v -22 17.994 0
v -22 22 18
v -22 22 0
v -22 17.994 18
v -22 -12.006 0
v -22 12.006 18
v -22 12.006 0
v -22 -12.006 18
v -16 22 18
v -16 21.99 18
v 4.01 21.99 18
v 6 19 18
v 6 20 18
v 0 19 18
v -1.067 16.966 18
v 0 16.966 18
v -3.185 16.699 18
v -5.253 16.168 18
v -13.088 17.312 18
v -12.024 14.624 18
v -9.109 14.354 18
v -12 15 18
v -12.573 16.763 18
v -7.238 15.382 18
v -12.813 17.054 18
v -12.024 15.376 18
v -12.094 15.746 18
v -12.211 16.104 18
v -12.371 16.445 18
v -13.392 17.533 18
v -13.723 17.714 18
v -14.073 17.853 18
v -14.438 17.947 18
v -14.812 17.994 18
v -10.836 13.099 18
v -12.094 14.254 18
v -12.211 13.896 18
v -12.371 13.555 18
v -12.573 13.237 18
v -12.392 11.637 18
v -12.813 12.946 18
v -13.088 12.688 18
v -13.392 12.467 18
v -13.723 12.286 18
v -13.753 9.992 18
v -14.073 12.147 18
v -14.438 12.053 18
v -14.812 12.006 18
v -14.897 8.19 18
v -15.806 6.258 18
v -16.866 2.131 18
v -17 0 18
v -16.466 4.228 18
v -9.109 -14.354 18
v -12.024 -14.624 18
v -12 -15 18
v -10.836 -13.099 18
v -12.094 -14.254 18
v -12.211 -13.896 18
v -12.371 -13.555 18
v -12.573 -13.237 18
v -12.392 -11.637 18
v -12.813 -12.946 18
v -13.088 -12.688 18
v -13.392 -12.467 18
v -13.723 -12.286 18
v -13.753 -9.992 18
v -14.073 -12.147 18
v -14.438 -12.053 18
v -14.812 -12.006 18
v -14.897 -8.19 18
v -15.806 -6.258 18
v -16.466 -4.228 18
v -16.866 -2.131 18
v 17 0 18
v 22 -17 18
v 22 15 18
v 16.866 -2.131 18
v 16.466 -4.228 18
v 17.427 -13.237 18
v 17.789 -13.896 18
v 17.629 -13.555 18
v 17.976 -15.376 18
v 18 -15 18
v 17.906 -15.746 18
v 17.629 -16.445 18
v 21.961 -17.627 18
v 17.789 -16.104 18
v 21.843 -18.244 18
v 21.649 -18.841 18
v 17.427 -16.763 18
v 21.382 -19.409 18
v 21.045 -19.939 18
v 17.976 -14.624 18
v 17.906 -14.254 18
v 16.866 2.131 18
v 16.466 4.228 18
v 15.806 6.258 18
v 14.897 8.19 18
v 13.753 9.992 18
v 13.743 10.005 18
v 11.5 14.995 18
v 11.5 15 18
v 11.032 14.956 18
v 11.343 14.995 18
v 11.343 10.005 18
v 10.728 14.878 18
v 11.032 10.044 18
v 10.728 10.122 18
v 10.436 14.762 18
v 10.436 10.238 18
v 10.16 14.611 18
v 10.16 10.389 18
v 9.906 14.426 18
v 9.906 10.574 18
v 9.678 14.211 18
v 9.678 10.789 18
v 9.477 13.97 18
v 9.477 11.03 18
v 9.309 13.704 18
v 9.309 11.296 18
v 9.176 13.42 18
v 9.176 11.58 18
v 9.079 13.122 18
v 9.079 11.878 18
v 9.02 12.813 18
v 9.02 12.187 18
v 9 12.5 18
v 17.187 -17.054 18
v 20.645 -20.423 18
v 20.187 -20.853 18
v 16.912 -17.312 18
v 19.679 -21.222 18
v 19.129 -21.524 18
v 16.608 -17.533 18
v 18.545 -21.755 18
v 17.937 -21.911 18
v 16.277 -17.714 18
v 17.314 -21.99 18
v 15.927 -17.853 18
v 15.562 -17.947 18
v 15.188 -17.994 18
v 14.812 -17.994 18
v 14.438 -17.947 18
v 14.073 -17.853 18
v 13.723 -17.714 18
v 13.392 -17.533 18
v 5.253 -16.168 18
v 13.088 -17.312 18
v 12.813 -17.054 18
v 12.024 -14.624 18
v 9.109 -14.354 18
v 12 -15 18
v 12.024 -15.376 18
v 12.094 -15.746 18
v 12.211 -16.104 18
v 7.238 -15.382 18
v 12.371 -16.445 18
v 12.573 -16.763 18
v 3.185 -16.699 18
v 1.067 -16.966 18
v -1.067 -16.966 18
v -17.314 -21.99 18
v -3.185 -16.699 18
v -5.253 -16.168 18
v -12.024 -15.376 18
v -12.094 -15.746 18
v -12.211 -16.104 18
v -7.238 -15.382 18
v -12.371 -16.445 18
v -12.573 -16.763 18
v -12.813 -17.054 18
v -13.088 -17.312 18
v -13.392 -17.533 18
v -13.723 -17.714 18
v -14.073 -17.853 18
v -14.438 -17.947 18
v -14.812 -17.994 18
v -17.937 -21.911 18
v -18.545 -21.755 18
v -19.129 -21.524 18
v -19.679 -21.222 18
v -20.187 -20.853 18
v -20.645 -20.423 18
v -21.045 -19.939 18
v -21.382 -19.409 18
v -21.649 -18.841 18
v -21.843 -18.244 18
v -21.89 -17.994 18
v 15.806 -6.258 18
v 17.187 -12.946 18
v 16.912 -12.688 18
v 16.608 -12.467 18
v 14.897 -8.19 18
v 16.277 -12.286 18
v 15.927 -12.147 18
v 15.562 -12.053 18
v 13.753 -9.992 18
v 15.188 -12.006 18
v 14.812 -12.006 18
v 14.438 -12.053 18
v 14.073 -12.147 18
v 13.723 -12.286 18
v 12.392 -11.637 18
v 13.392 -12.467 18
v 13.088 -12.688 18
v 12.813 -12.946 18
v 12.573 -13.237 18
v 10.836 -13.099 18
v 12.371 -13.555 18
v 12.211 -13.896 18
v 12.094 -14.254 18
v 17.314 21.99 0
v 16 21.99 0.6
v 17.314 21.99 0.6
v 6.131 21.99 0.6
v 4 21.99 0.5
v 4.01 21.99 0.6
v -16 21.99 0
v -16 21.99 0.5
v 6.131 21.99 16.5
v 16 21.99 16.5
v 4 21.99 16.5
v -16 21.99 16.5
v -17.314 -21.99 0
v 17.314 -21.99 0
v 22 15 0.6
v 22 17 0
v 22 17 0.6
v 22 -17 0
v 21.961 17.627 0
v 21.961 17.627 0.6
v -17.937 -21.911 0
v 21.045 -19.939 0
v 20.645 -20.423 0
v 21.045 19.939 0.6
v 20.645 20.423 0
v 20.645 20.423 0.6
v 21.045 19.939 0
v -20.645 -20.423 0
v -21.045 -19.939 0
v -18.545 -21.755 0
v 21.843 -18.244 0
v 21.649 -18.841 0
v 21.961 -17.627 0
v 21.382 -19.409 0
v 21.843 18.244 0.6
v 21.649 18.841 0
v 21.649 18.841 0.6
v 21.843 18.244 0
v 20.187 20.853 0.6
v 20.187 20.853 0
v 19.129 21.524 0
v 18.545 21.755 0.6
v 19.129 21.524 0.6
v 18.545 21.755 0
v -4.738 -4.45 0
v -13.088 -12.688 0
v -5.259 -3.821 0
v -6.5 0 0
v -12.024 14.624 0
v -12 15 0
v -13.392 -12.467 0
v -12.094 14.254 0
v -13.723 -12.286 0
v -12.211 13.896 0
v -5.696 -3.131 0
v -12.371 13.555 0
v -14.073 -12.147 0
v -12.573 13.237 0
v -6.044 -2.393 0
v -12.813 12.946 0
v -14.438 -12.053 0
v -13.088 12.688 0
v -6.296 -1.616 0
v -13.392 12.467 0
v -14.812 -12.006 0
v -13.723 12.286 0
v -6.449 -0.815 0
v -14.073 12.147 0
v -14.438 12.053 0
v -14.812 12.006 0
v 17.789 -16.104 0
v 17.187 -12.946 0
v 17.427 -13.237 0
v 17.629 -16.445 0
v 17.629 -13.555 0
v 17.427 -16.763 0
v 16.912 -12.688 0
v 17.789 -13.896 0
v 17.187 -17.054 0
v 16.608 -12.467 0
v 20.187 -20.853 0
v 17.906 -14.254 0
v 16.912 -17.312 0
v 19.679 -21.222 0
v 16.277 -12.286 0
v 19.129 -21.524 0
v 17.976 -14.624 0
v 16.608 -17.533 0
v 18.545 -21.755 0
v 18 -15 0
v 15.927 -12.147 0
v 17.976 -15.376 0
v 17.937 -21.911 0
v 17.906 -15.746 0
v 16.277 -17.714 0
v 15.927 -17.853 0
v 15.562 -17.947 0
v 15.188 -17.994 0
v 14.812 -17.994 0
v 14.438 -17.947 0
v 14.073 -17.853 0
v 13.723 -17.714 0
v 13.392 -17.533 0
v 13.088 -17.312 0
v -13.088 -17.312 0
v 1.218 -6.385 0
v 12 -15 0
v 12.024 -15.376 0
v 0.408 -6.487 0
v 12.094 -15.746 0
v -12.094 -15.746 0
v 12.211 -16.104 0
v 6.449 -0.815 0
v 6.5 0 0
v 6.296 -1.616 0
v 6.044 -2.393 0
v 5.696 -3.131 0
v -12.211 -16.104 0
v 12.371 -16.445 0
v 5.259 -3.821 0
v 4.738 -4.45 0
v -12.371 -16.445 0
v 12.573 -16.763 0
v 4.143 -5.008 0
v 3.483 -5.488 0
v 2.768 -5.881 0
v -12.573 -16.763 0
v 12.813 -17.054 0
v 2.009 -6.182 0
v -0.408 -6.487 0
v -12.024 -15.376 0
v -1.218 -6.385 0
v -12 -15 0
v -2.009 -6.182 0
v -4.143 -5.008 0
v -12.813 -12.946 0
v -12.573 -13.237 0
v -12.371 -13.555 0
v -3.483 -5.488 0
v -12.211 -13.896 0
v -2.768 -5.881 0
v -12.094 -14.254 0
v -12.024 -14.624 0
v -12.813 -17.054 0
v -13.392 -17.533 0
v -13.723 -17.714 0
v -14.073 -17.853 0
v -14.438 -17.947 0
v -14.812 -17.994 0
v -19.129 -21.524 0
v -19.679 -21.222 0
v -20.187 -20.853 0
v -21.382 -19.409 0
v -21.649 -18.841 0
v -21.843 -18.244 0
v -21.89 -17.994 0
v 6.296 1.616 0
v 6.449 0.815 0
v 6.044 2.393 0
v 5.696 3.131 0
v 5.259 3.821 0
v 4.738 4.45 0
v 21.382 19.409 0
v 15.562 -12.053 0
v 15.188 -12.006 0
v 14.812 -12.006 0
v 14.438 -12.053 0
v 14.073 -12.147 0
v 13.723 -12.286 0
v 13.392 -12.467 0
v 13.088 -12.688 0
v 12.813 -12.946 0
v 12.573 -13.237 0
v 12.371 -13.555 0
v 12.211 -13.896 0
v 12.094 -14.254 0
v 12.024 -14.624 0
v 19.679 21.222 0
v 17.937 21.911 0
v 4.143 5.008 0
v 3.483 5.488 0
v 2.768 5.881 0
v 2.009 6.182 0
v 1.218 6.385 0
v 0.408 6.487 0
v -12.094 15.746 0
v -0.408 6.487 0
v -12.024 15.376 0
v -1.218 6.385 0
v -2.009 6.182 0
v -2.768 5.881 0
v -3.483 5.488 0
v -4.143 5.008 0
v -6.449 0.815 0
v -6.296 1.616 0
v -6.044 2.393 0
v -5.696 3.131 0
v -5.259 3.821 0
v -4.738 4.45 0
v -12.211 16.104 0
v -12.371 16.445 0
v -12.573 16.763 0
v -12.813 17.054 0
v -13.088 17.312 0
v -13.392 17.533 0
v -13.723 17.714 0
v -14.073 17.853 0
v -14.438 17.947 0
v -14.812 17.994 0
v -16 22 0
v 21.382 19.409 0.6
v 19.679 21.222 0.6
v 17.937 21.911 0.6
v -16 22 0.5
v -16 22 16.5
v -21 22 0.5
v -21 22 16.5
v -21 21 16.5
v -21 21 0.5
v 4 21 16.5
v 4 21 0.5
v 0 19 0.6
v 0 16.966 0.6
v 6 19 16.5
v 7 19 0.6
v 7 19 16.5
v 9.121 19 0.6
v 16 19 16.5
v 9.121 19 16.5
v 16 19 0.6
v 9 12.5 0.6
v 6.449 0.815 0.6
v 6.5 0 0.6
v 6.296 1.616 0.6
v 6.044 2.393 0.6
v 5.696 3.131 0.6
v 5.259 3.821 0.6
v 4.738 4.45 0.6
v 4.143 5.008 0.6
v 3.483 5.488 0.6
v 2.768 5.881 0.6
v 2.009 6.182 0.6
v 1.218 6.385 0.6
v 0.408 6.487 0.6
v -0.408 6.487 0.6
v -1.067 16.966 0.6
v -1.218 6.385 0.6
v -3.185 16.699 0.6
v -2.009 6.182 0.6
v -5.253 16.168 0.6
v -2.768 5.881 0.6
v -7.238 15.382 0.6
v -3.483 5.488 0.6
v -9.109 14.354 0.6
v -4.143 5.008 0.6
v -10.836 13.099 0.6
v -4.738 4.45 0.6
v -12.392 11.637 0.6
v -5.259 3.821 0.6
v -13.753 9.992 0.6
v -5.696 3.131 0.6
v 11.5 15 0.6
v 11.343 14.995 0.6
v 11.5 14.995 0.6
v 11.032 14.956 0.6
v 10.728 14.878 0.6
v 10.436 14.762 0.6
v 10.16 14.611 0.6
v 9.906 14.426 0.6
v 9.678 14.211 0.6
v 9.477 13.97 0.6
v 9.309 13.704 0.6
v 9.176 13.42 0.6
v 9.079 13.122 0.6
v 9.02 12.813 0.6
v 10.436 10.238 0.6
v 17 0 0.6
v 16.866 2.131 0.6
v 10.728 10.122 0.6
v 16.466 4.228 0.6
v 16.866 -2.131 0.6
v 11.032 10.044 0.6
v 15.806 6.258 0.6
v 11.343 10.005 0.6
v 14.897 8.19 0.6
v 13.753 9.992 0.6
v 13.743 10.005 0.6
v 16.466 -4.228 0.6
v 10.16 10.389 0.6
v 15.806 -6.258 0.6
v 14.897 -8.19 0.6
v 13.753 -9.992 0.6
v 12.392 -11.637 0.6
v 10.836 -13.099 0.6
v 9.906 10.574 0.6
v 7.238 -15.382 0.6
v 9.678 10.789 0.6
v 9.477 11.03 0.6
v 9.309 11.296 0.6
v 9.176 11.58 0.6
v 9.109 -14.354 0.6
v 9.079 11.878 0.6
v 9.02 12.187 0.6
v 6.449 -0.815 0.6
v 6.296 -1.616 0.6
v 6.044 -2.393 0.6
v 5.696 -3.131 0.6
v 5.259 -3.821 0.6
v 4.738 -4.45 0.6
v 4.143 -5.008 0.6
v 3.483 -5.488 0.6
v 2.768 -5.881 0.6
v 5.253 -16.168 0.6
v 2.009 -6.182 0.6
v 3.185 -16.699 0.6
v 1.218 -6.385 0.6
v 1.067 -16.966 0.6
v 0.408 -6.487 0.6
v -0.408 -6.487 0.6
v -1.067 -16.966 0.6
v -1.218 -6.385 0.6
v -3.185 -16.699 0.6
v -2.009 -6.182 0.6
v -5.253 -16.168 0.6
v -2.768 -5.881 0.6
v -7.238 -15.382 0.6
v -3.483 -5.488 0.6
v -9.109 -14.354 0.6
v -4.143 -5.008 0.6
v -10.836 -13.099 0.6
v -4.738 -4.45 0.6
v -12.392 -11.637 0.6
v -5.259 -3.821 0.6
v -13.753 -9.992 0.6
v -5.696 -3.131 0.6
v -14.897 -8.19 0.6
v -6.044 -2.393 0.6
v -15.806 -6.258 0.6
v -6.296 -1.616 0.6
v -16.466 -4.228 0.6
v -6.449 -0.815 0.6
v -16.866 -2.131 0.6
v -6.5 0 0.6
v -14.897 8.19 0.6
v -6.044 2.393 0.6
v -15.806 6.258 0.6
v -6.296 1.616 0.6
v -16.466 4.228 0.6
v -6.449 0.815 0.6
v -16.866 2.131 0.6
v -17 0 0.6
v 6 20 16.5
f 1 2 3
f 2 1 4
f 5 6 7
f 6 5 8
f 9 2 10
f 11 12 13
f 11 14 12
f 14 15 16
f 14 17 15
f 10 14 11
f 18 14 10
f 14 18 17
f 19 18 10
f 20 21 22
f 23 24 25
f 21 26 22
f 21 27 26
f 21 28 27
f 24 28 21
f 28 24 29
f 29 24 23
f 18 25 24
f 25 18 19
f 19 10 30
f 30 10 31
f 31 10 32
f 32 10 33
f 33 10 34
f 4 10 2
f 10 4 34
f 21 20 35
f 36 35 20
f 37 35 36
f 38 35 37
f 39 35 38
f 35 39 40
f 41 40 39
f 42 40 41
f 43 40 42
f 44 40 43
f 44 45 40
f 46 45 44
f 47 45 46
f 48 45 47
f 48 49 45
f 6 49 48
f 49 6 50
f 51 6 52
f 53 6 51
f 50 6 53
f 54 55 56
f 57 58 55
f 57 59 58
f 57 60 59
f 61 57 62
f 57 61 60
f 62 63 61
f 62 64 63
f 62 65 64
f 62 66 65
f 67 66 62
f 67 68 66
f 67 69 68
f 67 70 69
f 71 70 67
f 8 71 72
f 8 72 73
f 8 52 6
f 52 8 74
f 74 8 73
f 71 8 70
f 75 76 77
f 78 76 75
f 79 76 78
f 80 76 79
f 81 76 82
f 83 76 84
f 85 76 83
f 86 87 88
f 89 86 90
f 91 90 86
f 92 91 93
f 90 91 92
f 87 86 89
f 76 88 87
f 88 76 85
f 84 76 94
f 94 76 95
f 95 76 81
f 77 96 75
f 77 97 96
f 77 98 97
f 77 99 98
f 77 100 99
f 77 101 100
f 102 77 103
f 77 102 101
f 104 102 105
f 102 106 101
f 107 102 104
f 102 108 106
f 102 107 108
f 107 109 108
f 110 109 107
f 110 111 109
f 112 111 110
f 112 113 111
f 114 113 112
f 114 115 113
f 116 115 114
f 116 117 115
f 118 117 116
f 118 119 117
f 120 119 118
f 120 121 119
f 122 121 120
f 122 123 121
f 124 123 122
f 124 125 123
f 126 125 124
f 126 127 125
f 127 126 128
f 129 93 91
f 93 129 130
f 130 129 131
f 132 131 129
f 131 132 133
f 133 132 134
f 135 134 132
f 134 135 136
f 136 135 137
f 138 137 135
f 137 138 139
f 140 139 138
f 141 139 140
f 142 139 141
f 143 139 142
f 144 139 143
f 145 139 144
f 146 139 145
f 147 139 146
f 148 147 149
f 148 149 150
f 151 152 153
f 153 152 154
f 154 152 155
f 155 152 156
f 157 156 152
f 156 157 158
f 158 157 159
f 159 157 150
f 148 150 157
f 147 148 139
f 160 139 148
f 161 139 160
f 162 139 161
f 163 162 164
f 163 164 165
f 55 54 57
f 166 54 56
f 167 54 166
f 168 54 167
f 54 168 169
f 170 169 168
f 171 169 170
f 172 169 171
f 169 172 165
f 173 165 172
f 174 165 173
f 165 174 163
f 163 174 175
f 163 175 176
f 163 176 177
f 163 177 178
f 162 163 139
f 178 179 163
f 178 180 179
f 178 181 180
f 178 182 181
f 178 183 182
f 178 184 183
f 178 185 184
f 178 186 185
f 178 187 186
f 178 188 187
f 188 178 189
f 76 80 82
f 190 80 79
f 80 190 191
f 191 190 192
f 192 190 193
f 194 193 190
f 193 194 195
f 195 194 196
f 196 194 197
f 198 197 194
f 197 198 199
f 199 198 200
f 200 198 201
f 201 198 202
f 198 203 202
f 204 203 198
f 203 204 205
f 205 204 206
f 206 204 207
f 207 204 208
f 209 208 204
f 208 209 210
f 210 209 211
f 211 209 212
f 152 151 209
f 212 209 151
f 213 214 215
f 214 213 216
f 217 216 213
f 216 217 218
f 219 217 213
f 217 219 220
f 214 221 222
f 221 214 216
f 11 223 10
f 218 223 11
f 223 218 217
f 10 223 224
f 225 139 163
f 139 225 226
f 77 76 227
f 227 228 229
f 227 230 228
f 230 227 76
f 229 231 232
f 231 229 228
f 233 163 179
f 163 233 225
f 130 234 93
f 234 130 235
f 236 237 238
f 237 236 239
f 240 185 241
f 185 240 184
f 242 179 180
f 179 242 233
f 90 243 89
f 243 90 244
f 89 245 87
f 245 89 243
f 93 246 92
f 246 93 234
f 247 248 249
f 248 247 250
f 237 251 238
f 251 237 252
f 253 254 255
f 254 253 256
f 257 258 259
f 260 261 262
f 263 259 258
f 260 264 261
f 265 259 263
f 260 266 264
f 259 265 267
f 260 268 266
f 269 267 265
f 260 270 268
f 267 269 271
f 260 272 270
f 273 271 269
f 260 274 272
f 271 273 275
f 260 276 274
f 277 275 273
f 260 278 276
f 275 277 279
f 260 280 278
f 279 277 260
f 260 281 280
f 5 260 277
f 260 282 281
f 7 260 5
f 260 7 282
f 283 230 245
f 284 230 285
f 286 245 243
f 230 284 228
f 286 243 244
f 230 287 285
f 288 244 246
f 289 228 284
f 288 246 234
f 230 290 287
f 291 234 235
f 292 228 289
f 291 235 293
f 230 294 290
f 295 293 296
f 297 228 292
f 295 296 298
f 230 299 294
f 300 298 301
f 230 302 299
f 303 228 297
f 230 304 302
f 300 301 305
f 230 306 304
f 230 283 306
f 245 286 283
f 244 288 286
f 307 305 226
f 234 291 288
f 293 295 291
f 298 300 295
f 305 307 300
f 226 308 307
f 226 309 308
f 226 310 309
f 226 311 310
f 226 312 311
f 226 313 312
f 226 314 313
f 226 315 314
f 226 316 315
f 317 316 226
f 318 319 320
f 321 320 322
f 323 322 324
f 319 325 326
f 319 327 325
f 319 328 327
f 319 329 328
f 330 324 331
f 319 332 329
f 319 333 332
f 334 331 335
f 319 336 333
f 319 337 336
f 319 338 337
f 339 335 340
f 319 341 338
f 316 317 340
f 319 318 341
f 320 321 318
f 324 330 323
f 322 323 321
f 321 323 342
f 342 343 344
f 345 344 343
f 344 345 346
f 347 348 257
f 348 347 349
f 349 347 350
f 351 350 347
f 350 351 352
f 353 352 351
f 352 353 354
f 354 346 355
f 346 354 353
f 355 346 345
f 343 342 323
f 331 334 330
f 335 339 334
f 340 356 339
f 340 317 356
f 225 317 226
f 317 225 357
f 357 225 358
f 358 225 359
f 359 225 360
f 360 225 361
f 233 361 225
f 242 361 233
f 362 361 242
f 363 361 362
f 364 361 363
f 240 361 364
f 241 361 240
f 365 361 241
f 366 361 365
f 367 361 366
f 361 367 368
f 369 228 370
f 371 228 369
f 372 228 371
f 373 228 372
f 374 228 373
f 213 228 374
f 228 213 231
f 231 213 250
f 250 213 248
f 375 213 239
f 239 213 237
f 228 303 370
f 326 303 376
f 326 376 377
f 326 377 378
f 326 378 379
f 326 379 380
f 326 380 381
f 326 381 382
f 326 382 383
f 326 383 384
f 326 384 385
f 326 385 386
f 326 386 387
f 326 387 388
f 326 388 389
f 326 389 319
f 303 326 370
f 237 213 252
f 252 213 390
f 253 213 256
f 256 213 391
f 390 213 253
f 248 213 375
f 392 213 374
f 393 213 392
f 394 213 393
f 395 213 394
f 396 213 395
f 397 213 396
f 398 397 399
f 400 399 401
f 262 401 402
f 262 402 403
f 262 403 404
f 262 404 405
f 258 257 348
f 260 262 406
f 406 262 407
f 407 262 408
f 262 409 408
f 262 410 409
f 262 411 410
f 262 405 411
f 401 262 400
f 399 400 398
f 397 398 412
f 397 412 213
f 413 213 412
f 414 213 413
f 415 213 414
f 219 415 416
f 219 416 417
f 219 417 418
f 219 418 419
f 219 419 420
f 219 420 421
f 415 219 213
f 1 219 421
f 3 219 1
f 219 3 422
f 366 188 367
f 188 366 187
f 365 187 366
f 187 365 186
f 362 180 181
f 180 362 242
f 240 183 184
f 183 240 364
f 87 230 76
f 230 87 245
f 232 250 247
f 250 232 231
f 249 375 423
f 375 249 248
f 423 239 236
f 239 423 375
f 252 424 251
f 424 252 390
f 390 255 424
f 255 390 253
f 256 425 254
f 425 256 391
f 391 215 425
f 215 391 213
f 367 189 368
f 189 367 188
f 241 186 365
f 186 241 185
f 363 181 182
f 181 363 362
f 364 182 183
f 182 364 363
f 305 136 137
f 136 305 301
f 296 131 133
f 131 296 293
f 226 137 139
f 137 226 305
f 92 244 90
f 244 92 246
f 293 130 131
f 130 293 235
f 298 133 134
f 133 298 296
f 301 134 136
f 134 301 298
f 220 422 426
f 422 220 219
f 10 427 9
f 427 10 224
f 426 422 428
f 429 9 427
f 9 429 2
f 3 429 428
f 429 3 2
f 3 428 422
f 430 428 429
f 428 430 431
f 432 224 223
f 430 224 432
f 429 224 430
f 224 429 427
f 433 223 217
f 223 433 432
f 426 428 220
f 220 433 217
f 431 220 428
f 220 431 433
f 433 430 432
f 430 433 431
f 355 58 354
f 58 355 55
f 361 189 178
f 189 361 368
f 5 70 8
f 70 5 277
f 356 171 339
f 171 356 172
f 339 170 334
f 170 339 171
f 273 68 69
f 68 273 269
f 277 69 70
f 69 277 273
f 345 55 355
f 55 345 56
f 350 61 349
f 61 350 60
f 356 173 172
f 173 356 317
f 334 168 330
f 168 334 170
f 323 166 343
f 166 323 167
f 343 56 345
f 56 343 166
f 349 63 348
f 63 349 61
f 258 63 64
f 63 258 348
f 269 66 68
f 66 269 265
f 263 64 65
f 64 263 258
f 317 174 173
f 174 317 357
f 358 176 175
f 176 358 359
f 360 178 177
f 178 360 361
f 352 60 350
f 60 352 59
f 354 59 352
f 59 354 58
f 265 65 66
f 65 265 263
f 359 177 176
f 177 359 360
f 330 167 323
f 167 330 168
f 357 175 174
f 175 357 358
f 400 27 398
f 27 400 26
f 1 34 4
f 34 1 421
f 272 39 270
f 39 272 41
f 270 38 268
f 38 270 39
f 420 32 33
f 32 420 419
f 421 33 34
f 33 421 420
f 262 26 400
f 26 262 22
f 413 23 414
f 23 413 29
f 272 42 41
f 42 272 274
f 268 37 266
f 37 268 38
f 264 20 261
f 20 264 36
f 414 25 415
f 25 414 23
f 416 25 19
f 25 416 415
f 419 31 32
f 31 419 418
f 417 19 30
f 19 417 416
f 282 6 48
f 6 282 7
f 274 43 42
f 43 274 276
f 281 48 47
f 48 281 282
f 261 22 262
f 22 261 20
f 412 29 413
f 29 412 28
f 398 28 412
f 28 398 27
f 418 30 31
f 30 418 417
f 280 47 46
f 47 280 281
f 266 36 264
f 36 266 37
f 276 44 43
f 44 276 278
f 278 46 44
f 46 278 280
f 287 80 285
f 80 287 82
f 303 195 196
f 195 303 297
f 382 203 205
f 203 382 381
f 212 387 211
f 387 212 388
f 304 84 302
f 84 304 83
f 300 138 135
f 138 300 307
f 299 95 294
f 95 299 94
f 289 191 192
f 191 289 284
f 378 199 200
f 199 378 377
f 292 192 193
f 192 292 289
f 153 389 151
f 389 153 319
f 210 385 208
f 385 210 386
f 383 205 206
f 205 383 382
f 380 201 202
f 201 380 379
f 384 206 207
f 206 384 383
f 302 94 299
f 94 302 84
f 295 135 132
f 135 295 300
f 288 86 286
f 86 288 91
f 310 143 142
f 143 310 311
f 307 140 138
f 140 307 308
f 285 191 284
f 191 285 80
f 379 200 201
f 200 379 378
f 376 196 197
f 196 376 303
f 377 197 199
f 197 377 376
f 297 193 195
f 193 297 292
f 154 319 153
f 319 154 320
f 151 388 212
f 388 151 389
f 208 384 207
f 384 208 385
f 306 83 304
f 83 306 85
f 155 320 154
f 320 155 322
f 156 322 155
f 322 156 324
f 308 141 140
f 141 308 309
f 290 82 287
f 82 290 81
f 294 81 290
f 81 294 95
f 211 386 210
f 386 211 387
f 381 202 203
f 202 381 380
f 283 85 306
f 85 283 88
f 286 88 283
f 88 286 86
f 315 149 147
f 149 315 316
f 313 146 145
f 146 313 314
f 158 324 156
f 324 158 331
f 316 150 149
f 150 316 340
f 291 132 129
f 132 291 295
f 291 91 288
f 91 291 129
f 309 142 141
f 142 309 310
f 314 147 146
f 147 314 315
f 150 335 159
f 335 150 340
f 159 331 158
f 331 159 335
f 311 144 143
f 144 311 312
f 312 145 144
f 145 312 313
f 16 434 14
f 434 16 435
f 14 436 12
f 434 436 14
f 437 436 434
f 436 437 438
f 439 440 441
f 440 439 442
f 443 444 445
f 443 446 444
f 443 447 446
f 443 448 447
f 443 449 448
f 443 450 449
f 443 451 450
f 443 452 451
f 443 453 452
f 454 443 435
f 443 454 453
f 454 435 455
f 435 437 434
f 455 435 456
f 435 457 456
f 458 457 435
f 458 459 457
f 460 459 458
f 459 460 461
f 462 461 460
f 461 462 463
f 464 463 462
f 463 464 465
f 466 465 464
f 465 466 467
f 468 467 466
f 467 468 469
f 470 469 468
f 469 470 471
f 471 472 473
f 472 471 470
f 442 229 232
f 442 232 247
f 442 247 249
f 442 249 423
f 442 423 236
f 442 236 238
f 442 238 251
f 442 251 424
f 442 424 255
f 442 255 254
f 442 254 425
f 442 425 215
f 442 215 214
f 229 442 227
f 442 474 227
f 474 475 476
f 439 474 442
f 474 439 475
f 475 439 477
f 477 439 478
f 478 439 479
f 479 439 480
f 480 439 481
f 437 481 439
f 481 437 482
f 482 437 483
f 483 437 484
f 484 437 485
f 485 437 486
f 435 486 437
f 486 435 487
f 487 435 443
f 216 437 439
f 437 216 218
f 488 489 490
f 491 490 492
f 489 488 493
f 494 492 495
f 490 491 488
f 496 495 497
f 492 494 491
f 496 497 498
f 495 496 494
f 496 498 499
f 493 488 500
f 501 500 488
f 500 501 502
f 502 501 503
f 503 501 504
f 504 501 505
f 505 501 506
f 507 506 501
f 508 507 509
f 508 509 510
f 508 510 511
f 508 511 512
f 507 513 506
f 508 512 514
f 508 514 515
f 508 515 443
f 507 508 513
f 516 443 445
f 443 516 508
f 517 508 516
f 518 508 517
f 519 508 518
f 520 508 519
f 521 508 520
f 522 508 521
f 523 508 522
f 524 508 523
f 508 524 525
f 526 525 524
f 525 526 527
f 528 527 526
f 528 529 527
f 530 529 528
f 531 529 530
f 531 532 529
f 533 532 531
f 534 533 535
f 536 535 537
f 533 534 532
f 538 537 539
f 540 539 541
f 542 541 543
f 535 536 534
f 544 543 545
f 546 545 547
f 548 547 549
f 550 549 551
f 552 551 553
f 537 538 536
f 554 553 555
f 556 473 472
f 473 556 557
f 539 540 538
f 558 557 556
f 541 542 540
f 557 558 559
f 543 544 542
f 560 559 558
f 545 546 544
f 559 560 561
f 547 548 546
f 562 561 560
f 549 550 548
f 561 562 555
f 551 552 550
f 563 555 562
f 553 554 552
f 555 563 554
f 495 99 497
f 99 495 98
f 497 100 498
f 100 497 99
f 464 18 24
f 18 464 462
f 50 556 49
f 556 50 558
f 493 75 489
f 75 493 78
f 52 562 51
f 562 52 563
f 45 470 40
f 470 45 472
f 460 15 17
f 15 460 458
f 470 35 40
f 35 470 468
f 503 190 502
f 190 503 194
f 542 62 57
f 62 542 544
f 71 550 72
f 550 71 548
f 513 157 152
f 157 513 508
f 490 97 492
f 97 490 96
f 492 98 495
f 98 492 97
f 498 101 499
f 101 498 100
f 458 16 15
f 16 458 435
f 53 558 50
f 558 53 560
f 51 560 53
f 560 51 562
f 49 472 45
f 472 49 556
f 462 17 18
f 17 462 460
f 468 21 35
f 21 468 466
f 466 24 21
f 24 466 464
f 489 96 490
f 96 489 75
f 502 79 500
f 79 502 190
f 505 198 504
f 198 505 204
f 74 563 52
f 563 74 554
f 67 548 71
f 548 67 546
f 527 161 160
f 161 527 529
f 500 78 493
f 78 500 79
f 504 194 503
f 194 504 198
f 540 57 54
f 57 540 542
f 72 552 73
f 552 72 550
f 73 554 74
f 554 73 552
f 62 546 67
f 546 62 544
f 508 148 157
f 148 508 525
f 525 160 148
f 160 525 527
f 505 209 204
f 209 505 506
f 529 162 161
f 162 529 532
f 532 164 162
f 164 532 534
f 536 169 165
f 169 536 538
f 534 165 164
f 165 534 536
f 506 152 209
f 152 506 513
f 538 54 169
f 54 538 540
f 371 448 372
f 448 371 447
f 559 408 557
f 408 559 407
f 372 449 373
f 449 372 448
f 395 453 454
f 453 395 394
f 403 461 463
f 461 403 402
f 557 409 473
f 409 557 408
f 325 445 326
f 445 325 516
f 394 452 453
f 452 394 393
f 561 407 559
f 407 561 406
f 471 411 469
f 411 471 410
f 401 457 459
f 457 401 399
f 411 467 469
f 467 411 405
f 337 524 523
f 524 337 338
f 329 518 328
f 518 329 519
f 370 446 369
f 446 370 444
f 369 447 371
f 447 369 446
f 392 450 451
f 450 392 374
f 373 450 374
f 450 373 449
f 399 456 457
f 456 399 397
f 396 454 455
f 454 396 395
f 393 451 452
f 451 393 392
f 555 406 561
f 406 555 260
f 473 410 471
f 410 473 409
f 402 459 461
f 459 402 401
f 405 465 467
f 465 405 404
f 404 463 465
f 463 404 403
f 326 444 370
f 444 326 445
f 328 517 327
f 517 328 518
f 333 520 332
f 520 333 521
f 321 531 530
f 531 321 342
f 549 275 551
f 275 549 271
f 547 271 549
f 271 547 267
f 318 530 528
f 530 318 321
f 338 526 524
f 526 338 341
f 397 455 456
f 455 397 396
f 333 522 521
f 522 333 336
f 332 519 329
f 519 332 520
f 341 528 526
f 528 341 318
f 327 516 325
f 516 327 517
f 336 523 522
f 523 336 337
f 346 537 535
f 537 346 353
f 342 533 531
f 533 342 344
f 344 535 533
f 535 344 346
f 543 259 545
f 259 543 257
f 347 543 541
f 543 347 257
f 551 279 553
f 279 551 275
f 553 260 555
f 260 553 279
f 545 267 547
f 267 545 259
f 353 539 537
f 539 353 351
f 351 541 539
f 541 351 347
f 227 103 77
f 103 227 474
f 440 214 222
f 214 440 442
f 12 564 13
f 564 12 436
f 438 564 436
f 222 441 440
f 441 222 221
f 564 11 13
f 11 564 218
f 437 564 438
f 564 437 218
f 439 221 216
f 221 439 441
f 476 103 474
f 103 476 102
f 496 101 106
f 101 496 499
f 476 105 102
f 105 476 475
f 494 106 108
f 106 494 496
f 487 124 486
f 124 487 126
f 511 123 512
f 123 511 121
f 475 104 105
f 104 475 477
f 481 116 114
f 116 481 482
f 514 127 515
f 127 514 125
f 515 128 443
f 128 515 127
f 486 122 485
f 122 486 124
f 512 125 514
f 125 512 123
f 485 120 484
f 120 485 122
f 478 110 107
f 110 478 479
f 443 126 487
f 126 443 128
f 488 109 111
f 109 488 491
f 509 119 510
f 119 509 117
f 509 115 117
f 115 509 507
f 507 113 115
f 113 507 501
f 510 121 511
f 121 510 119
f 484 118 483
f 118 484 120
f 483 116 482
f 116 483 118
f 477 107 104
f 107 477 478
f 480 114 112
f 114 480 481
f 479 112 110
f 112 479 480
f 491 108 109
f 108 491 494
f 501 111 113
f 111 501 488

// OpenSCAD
$fn = 50;


union() {
	difference() {
		union() {
			translate(v = [0, 0, 0]) {
				rotate(a = [0, 0, 0]) {
					hull() {
						translate(v = [-17.0000000000, 17.0000000000, 0]) {
							rotate(a = [0, 0, 0]) {
								translate(v = [0, 0, 0]) {
									rotate(a = [0, 0, 0]) {
										cylinder(h = 18, r = 5);
									}
								}
							}
						}
						translate(v = [17.0000000000, 17.0000000000, 0]) {
							rotate(a = [0, 0, 0]) {
								translate(v = [0, 0, 0]) {
									rotate(a = [0, 0, 0]) {
										cylinder(h = 18, r = 5);
									}
								}
							}
						}
						translate(v = [-17.0000000000, -17.0000000000, 0]) {
							rotate(a = [0, 0, 0]) {
								translate(v = [0, 0, 0]) {
									rotate(a = [0, 0, 0]) {
										cylinder(h = 18, r = 5);
									}
								}
							}
						}
						translate(v = [17.0000000000, -17.0000000000, 0]) {
							rotate(a = [0, 0, 0]) {
								translate(v = [0, 0, 0]) {
									rotate(a = [0, 0, 0]) {
										cylinder(h = 18, r = 5);
									}
								}
							}
						}
					}
				}
			}
			translate(v = [-22.0000000000, 16.0000000000, 0]) {
				rotate(a = [0, 0, 0]) {
					cube(size = [6, 6, 18]);
				}
			}
		}
		union() {
			#translate(v = [-21.0000000000, 21.0000000000, 0.5000000000]) {
				rotate(a = [0, 0, 0]) {
					cube(size = [25, 1, 16]);
				}
			}
			translate(v = [-22.5000000000, -15.0000000000, -125]) {
				rotate(a = [0, 0, 0]) {
					hull() {
						translate(v = [7.5000000000, 0, 0]) {
							rotate(a = [0, 0, 0]) {
								translate(v = [0, 0, 0]) {
									rotate(a = [0, 0, 0]) {
										cylinder(h = 250, r = 3.0000000000);
									}
								}
							}
						}
						translate(v = [-7.5000000000, 0, 0]) {
							rotate(a = [0, 0, 0]) {
								translate(v = [0, 0, 0]) {
									rotate(a = [0, 0, 0]) {
										cylinder(h = 250, r = 3.0000000000);
									}
								}
							}
						}
					}
				}
			}
			translate(v = [-22.5000000000, 15.0000000000, -125]) {
				rotate(a = [0, 0, 0]) {
					hull() {
						translate(v = [7.5000000000, 0, 0]) {
							rotate(a = [0, 0, 0]) {
								translate(v = [0, 0, 0]) {
									rotate(a = [0, 0, 0]) {
										cylinder(h = 250, r = 3.0000000000);
									}
								}
							}
						}
						translate(v = [-7.5000000000, 0, 0]) {
							rotate(a = [0, 0, 0]) {
								translate(v = [0, 0, 0]) {
									rotate(a = [0, 0, 0]) {
										cylinder(h = 250, r = 3.0000000000);
									}
								}
							}
						}
					}
				}
			}
			translate(v = [15.0000000000, -15.0000000000, -125.0000000000]) {
				rotate(a = [0, 0, 0]) {
					cylinder(h = 250, r = 3.0000000000);
				}
			}
			translate(v = [0.0000000000, 11.0000000000, 0.6000000000]) {
				rotate(a = [0, 0, 0]) {
					cube(size = [11, 8, 20.4000000000]);
				}
			}
			translate(v = [0, 0, 0.6000000000]) {
				rotate(a = [0, 0, 0]) {
					cylinder(h = 20.4000000000, r = 17.0000000000);
				}
			}
			translate(v = [0, 0, -9.0000000000]) {
				rotate(a = [0, 0, 0]) {
					cylinder(h = 18, r = 6.5000000000);
				}
			}
			translate(v = [0.0000000000, 15.0000000000, 0.6000000000]) {
				rotate(a = [0, 0, 0]) {
					cube(size = [22.0000000000, 4, 20.4000000000]);
				}
			}
			translate(v = [16.0000000000, 15.0000000000, 0.6000000000]) {
				rotate(a = [0, 0, 0]) {
					cube(size = [6, 7, 20.4000000000]);
				}
			}
			translate(v = [6.0000000000, 15.0000000000, 16.5000000000]) {
				rotate(a = [0, 0, 0]) {
					cube(size = [16, 7, 1.5000000000]);
				}
			}
			translate(v = [3.2500000000, 22.7500000000, 0.6000000000]) {
				rotate(a = [0, 0, -45]) {
					cube(size = [7.5000000000, 1.5000000000, 20.4000000000]);
				}
			}
			translate(v = [2.5000000000, 10.0000000000, 0.6000000000]) {
				rotate(a = [0, 0, 0]) {
					cube(size = [9.0000000000, 5, 17.4000000000]);
				}
			}
		}
	}
	union() {
		translate(v = [14, 12.5000000000, 0]) {
			rotate(a = [0, 0, 0]) {
				hull() {
					translate(v = [2.5000000000, 0, 0]) {
						rotate(a = [0, 0, 0]) {
							#translate(v = [0, 0, 0]) {
								rotate(a = [0, 0, 0]) {
									cylinder(h = 18, r = 2.5000000000);
								}
							}
						}
					}
					translate(v = [-2.5000000000, 0, 0]) {
						rotate(a = [0, 0, 0]) {
							#translate(v = [0, 0, 0]) {
								rotate(a = [0, 0, 0]) {
									cylinder(h = 18, r = 2.5000000000);
								}
							}
						}
					}
				}
			}
		}
	}
}
